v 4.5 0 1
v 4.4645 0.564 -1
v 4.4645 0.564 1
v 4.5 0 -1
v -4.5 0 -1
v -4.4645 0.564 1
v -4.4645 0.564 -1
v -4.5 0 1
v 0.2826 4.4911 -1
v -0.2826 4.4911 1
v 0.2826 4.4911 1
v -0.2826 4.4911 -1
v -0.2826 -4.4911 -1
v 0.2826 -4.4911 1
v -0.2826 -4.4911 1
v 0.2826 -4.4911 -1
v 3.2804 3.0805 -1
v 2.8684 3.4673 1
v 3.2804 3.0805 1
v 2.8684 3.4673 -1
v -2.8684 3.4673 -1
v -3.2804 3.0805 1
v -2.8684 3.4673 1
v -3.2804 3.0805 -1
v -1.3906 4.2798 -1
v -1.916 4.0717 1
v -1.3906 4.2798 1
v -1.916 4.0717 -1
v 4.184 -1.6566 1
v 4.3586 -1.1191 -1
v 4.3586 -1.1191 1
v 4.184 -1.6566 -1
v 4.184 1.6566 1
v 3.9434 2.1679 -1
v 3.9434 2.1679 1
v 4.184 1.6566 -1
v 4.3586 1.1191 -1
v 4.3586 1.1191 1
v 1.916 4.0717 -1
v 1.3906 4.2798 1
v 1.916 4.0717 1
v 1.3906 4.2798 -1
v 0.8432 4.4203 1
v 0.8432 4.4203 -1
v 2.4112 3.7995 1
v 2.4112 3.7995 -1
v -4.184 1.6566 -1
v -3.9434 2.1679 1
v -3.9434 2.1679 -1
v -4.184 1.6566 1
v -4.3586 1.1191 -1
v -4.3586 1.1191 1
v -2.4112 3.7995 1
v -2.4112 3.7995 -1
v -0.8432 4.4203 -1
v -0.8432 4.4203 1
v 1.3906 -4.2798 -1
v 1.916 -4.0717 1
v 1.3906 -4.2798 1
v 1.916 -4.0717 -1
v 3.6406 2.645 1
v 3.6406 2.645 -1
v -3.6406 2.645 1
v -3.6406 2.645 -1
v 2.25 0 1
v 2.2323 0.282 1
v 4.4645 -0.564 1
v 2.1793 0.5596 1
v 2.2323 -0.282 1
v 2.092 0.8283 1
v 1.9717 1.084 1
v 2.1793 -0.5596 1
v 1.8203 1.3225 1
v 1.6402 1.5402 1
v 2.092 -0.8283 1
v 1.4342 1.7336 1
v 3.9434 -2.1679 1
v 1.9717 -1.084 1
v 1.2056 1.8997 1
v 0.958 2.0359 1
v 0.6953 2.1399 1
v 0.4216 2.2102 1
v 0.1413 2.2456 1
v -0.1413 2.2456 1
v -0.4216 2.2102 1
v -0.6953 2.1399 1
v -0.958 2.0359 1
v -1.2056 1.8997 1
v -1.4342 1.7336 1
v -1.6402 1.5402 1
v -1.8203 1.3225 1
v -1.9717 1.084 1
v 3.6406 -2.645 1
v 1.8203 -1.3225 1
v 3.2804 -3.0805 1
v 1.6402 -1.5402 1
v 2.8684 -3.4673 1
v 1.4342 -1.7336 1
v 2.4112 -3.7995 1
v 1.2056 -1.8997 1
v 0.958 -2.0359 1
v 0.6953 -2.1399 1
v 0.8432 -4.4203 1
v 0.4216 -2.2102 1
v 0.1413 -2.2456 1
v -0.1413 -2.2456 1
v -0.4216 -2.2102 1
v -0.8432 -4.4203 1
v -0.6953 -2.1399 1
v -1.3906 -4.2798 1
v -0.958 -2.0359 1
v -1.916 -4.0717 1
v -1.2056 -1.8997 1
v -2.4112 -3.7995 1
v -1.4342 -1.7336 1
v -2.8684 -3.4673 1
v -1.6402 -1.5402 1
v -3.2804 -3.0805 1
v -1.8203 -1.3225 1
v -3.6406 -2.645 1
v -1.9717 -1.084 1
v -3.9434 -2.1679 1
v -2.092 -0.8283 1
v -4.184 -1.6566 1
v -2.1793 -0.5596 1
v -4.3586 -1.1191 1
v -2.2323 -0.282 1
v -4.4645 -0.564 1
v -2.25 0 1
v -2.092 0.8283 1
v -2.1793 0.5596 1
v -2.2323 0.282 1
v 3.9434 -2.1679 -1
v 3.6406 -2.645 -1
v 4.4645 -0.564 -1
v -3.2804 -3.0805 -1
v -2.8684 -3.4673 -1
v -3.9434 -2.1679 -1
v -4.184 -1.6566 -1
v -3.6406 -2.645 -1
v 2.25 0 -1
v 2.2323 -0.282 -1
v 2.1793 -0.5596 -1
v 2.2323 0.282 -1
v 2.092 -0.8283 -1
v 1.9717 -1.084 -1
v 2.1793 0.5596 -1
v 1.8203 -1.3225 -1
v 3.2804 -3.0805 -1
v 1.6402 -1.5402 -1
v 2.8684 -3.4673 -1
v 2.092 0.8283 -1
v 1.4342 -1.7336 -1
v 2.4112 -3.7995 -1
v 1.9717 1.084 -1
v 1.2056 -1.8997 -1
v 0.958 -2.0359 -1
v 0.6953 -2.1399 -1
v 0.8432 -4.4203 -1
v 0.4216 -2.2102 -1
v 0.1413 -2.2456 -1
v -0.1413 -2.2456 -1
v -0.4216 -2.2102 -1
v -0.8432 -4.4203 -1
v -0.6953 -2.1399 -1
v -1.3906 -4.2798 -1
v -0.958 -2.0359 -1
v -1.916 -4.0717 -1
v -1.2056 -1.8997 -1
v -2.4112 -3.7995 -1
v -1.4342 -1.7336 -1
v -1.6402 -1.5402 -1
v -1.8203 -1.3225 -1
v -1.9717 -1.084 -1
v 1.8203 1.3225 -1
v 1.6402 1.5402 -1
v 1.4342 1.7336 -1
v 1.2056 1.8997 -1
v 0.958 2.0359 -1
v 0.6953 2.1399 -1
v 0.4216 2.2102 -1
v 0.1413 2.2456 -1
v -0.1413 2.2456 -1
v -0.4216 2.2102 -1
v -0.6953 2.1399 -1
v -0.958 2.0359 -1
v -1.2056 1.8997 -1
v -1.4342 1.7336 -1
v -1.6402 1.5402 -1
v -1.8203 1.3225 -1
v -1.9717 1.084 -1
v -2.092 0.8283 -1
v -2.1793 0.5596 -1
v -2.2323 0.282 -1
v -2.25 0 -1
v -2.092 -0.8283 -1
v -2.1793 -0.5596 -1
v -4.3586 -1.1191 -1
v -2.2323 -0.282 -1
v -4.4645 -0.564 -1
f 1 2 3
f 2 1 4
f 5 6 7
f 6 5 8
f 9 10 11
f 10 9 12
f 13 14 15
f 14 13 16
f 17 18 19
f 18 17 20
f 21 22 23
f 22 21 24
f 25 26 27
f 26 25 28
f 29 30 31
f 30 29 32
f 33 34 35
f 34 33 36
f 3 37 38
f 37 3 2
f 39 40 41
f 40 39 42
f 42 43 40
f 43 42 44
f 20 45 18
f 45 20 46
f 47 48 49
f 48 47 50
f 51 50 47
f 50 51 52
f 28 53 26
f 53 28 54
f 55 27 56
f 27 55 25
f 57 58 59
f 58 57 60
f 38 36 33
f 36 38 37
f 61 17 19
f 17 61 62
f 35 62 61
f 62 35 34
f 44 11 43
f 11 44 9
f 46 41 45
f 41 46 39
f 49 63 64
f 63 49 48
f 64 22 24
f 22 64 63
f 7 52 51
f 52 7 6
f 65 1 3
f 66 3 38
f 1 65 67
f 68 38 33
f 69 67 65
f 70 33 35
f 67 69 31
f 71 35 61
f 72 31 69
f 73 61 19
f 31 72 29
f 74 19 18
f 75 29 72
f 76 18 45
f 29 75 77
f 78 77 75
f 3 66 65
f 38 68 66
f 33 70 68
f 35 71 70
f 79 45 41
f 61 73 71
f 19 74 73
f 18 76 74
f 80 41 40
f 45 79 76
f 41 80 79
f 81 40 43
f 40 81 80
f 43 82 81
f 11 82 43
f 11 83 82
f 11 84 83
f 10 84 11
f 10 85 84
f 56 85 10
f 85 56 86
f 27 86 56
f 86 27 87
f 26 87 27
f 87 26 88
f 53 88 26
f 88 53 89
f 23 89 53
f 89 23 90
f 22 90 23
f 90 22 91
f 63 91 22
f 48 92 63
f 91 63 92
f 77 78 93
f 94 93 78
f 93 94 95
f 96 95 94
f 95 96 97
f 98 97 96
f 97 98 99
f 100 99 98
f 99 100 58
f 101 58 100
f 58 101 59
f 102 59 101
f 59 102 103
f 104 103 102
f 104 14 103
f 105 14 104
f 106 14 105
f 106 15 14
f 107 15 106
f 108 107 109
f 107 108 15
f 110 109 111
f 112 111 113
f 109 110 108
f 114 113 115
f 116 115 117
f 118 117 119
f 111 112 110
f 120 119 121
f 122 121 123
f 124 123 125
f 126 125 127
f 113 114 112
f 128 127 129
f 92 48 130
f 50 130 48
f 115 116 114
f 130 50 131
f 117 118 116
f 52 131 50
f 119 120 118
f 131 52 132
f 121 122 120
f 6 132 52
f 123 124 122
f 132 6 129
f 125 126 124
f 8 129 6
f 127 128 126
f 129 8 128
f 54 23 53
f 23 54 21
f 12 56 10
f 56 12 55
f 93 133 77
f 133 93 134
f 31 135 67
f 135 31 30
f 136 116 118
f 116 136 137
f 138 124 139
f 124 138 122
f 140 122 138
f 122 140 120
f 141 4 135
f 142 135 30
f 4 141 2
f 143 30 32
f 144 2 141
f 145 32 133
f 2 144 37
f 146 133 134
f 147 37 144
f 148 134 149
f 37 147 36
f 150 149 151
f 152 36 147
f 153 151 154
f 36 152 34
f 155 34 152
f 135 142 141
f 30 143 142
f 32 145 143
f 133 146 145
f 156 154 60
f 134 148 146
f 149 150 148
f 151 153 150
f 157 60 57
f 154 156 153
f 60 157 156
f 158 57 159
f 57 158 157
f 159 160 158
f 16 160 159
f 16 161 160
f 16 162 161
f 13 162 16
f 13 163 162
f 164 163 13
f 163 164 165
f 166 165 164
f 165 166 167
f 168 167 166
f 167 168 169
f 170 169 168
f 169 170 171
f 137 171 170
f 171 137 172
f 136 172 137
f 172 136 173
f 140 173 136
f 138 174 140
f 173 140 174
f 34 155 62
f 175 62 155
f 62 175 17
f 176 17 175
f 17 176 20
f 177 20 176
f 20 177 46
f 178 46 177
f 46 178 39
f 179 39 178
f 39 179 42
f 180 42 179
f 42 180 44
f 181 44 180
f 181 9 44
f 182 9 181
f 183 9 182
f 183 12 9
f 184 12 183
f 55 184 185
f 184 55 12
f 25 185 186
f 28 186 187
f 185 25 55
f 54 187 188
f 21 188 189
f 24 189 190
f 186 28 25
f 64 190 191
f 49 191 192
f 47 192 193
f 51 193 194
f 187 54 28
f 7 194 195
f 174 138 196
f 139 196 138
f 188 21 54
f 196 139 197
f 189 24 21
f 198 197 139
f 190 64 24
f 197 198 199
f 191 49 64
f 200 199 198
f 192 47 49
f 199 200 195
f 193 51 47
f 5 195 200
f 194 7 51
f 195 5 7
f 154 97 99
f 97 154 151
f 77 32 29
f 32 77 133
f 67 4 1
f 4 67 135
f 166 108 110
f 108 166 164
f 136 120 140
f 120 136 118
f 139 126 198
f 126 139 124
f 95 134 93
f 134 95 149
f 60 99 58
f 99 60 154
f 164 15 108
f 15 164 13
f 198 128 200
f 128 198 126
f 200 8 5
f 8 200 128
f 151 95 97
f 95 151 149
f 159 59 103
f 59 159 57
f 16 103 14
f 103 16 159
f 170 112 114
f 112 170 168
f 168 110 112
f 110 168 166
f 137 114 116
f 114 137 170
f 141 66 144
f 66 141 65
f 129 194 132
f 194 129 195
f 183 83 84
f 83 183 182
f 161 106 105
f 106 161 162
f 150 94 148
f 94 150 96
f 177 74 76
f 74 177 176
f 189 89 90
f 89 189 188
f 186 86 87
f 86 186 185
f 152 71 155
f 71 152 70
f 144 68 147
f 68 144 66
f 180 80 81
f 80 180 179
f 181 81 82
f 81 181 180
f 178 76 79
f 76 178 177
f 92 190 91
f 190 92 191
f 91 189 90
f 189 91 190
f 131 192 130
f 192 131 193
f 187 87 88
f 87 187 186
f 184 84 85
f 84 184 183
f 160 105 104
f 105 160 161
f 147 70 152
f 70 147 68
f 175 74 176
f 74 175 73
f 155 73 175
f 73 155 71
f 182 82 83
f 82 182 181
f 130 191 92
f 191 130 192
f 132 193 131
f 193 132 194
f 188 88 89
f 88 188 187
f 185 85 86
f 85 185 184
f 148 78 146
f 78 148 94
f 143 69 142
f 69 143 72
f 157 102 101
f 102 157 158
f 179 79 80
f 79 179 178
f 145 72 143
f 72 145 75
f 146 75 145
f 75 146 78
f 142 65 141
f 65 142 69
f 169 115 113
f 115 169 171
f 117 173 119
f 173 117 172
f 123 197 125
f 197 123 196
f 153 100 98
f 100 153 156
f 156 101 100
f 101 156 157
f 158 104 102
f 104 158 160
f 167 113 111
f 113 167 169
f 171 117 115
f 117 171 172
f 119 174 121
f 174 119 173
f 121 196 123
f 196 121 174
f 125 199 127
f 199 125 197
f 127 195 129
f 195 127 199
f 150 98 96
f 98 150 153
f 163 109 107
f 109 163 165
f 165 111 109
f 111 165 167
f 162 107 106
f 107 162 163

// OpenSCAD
$fn = 50;


difference() {
	union() {
		translate(v = [0, 0, -1.0000000000]) {
			cylinder(h = 2, r = 4.5000000000);
		}
	}
	union() {
		translate(v = [0, 0, -100.0000000000]) {
			cylinder(h = 200, r = 2.2500000000);
		}
	}
}
